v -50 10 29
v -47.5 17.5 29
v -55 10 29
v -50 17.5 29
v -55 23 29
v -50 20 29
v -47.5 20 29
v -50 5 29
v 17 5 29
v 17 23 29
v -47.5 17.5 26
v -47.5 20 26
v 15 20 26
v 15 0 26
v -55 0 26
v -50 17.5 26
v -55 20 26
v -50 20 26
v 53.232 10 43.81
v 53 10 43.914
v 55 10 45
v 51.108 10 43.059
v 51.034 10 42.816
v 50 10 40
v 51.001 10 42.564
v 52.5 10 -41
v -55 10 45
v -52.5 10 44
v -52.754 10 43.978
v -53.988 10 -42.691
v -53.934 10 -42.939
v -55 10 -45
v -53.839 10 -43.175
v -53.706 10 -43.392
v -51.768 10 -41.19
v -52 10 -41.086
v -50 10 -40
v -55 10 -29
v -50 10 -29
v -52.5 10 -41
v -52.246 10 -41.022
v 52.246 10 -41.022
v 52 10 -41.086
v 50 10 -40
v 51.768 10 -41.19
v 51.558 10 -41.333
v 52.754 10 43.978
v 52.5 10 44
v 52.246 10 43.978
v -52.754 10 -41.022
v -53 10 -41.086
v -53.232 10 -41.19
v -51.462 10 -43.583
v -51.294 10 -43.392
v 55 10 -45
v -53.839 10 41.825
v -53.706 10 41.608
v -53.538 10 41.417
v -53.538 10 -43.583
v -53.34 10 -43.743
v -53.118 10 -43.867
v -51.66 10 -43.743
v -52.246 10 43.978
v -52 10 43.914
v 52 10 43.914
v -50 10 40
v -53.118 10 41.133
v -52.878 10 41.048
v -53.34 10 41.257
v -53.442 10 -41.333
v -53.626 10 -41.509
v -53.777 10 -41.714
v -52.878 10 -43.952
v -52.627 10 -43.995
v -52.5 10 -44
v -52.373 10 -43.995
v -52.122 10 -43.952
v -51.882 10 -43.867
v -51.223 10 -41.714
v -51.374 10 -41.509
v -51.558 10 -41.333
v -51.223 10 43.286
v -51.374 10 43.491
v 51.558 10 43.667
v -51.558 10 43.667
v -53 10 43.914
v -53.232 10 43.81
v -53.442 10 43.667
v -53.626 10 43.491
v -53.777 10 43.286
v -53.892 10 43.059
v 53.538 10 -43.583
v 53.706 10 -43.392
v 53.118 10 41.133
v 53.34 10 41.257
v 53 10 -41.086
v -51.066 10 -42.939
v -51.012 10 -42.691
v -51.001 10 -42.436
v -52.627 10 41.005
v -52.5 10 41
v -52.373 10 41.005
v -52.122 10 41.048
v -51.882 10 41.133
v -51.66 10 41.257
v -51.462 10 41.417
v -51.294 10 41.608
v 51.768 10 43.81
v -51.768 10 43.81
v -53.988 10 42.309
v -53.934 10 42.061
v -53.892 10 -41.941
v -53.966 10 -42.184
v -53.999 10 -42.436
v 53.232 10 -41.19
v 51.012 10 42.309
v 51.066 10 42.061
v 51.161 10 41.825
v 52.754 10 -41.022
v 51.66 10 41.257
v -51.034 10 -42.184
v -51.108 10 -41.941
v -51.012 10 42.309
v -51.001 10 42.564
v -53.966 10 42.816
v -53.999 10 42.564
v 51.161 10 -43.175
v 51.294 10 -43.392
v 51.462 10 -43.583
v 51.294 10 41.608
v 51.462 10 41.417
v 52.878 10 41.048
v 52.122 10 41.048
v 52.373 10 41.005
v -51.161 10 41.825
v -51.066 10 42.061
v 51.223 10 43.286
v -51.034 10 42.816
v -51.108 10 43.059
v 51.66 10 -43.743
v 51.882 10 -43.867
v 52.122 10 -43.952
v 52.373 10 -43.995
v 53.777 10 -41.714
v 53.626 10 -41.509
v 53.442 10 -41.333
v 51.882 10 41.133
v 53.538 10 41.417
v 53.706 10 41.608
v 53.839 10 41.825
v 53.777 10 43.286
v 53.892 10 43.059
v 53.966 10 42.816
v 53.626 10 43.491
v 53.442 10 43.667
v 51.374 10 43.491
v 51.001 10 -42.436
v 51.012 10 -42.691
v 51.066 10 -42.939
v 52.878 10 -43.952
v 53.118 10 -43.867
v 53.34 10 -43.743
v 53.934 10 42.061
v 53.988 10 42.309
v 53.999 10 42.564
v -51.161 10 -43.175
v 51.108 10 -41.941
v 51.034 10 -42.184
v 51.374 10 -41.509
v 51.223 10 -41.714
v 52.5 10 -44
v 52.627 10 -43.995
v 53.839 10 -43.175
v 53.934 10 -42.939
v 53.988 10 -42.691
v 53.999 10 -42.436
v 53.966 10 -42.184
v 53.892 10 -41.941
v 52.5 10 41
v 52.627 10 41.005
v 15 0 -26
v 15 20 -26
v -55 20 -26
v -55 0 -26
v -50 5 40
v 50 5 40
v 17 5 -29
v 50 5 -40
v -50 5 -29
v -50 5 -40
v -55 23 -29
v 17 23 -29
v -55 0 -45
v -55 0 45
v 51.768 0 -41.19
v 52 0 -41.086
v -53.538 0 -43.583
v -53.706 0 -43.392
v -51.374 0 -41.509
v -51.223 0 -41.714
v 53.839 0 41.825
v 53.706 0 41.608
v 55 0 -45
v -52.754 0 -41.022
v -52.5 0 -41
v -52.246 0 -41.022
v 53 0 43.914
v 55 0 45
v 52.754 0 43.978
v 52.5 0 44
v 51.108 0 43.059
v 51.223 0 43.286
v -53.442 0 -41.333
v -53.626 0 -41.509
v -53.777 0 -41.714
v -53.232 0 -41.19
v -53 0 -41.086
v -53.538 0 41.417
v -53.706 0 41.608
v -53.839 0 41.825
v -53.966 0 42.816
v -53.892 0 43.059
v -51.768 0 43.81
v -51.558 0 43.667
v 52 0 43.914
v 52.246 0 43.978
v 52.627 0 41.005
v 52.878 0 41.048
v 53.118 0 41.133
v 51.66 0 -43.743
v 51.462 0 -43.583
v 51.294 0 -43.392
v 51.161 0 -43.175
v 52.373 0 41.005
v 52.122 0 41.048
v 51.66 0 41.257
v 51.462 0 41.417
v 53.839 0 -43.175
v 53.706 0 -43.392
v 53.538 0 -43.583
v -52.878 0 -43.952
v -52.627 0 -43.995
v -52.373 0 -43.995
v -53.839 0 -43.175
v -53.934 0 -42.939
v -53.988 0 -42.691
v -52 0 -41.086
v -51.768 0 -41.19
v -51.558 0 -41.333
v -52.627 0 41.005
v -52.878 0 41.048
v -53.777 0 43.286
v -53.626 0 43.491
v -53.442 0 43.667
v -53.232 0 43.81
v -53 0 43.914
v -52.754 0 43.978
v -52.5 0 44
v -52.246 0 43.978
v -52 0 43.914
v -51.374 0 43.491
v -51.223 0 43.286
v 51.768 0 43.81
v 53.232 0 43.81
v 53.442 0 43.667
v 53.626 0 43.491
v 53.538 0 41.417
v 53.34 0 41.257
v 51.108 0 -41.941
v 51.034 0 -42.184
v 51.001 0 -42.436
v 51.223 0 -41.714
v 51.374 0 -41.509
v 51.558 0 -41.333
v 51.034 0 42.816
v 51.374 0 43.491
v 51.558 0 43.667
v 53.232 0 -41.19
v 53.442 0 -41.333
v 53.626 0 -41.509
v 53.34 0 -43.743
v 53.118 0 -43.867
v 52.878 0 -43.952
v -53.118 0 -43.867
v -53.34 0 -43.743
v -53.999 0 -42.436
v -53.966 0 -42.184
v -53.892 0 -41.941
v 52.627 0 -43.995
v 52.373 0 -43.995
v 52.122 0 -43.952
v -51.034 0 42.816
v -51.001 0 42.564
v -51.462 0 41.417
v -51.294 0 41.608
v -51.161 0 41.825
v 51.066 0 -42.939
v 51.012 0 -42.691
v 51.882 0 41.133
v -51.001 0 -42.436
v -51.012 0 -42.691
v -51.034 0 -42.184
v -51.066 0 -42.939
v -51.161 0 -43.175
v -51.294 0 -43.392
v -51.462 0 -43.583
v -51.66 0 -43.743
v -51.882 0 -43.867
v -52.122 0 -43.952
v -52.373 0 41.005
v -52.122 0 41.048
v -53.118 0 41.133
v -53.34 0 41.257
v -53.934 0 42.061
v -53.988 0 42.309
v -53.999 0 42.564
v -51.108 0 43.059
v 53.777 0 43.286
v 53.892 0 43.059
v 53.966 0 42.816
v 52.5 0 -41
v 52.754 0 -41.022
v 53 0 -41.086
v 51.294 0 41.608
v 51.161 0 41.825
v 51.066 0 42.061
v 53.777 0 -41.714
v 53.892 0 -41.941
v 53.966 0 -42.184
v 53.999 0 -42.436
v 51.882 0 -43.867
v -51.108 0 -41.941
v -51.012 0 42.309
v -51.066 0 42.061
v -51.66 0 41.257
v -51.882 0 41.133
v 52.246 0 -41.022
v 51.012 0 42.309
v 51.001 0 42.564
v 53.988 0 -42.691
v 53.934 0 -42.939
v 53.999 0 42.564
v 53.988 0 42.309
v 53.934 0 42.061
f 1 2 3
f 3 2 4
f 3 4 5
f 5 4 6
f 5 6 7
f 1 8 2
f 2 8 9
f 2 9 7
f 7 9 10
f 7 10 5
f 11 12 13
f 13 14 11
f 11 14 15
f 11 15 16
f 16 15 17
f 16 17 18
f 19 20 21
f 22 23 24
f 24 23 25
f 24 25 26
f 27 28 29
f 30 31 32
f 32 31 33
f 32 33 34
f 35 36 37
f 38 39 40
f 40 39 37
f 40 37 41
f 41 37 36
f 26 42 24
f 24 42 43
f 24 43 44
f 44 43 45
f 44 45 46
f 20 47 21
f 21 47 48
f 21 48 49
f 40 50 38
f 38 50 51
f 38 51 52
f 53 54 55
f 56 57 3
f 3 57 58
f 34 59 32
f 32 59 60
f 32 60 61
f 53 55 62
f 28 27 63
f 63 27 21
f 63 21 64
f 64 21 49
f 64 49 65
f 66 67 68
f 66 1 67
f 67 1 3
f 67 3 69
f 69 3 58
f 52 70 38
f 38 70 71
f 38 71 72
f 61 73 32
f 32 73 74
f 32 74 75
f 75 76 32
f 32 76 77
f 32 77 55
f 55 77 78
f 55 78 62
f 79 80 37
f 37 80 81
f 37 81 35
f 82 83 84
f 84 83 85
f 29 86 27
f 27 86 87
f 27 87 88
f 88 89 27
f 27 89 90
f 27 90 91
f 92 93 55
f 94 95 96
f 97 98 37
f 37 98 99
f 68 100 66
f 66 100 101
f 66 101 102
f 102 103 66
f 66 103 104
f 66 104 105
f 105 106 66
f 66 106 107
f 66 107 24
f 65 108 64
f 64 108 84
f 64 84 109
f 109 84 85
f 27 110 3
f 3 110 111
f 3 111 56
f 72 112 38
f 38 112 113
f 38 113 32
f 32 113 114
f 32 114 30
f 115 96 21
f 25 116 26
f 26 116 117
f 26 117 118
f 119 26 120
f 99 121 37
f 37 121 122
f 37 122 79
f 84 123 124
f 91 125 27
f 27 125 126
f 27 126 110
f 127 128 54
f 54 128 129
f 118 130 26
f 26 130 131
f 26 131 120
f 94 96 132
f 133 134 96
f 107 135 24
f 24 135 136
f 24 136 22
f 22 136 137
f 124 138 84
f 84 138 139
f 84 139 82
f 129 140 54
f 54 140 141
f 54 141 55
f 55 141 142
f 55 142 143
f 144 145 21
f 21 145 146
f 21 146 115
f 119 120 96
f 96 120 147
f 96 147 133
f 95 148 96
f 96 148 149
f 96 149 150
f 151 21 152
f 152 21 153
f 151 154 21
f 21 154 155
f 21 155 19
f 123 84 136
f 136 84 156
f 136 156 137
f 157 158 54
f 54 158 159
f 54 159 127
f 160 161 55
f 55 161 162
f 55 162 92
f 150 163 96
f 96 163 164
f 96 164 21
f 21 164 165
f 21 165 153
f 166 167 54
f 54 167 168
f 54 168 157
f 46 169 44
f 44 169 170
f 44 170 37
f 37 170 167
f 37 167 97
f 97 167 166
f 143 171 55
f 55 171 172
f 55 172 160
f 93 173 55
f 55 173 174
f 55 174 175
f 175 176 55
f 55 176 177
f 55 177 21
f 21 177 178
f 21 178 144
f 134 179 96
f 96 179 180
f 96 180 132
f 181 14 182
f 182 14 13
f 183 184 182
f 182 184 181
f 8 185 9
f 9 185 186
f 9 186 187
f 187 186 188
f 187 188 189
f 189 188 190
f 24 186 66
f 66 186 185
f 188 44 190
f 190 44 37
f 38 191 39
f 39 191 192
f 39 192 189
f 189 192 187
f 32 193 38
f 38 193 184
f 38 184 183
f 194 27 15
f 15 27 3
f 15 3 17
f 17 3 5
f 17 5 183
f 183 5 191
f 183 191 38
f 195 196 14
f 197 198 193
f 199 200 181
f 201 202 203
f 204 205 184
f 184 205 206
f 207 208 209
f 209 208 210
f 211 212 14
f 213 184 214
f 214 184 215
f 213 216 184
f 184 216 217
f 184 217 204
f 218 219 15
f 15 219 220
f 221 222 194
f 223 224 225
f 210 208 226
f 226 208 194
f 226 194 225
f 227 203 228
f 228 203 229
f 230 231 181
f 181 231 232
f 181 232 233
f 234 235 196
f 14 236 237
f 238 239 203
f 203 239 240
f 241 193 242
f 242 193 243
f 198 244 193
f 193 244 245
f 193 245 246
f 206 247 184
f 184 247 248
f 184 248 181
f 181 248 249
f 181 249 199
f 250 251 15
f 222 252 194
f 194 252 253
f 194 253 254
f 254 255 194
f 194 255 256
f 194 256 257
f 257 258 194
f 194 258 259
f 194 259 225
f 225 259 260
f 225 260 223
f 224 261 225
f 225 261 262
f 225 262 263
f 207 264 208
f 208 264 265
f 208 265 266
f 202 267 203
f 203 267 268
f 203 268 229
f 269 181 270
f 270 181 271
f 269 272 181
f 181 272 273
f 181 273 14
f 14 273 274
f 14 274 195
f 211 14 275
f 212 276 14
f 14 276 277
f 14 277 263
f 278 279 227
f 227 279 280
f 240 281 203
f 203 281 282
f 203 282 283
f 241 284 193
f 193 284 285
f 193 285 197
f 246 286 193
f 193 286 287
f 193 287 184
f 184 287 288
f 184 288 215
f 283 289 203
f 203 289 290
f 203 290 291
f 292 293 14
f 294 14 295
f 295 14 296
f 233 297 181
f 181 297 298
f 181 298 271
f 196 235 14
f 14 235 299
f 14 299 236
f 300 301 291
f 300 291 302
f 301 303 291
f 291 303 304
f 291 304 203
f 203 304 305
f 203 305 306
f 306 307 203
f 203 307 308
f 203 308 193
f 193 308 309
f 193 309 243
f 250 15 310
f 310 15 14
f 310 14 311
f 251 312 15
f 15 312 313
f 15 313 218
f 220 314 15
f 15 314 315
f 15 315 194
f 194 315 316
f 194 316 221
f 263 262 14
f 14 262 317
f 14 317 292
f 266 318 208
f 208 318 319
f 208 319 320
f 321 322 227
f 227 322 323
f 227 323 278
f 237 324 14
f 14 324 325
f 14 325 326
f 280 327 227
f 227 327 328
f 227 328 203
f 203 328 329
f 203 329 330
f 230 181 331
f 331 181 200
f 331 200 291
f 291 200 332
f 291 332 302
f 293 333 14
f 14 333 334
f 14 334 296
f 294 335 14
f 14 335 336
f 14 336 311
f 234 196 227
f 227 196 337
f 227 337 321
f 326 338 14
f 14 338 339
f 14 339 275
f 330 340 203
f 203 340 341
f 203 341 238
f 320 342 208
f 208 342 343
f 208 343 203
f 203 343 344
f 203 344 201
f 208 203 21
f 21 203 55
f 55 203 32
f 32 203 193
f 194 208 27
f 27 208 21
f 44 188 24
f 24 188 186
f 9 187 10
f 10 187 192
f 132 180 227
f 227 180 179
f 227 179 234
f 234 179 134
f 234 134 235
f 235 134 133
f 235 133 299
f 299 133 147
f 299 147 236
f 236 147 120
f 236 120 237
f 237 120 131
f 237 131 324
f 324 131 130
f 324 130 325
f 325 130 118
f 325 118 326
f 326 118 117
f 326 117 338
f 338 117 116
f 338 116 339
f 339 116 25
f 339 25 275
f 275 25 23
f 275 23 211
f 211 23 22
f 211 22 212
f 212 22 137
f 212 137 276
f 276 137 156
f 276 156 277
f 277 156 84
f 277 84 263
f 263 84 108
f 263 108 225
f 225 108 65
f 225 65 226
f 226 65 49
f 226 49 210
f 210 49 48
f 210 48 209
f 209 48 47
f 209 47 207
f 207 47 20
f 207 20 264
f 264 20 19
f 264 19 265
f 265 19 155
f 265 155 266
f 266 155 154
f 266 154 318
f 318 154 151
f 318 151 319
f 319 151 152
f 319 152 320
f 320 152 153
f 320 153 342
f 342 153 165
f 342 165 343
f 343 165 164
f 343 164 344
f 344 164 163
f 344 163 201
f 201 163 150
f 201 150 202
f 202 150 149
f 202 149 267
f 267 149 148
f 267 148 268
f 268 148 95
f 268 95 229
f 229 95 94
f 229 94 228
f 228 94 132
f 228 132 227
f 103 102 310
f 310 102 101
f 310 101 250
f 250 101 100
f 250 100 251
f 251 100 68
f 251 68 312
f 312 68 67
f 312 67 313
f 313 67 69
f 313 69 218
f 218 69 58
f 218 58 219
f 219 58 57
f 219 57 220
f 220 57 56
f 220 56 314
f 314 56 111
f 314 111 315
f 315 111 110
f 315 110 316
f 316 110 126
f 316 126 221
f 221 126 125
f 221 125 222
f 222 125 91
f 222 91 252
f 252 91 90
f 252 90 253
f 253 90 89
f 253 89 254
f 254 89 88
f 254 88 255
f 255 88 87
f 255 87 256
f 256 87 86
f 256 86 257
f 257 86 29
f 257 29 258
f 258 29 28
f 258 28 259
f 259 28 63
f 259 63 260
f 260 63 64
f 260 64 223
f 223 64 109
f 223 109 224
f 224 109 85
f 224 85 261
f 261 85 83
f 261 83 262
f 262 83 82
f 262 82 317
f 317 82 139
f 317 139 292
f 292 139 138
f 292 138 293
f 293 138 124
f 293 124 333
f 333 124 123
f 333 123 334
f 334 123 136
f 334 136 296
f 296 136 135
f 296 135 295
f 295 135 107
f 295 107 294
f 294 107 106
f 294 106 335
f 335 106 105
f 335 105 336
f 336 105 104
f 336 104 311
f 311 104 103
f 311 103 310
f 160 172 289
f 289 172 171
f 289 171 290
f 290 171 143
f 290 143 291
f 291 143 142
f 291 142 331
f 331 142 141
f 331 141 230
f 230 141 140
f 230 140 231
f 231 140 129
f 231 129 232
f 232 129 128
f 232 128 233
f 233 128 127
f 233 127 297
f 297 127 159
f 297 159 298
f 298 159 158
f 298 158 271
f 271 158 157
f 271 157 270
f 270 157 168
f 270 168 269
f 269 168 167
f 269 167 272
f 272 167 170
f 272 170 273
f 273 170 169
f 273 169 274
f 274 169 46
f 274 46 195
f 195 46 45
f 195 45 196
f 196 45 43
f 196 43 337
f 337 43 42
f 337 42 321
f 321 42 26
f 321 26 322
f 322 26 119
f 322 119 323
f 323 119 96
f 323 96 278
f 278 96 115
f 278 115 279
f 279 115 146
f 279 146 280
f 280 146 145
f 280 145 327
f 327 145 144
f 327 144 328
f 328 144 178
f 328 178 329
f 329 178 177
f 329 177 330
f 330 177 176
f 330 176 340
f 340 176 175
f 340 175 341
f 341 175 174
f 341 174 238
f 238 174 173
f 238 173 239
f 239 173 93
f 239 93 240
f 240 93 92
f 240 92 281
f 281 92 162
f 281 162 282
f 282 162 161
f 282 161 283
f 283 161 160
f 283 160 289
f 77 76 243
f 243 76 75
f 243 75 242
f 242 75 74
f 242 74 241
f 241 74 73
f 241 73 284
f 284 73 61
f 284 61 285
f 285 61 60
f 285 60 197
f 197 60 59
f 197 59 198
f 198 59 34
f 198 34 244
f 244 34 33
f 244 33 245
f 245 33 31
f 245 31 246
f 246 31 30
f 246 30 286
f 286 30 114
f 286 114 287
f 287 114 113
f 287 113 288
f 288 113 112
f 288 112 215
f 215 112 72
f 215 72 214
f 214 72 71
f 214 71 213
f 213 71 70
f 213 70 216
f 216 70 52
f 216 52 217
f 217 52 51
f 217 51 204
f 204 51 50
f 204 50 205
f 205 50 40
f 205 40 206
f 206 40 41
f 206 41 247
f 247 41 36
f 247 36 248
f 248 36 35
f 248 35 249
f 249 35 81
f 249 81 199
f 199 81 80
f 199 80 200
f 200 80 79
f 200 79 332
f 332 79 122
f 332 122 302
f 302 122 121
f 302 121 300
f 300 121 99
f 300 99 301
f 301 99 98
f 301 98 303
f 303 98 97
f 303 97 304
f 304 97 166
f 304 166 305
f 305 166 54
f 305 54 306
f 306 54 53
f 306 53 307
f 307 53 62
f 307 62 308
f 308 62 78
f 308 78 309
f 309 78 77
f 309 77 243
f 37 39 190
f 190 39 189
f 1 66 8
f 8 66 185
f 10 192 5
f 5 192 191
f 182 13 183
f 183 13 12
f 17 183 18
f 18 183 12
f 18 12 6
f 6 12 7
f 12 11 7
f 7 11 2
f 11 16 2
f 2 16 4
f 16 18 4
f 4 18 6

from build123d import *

# Parameters (mm, degrees)
SKETCH1_W            = 110
SKETCH1_H            = 90
BOSS_EXTRUDE2_DEPTH  = 5
SKETCH2_W            = 110
SKETCH2_H            = 5
BOSS_EXTRUDE4_DEPTH  = 25
SKETCH3_W            = 110
SKETCH3_H            = 5
BOSS_EXTRUDE5_DEPTH  = 25
SKETCH5_W            = 5
SKETCH5_H            = 80
BOSS_EXTRUDE6_DEPTH  = 25
SKETCH8_W            = 72
SKETCH8_H            = 58
BOSS_EXTRUDE7_DEPTH  = 25
SKETCH10_W           = 52
SKETCH10_H           = 20.115523146
CUT_EXTRUDE1_DEPTH   = 70
SKETCH11_W           = 90
SKETCH11_H           = 7
CUT_EXTRUDE2_DEPTH   = 110
SKETCH12_R           = 1.5
CUT_EXTRUDE3_DEPTH   = 23
SKETCH13_R           = 1.5
CUT_EXTRUDE4_DEPTH   = 23
SKETCH14_R           = 1.5
CUT_EXTRUDE5_DEPTH   = 23
SKETCH15_R           = 1.5
CUT_EXTRUDE6_DEPTH   = 23
SKETCH18_W           = 5
SKETCH18_H           = 13
CUT_EXTRUDE7_DEPTH   = 110
SKETCH19_W           = 5
SKETCH19_H           = 13
CUT_EXTRUDE13_DEPTH  = 85
SKETCH26_W           = 5
SKETCH26_H           = 13
CUT_EXTRUDE17_DEPTH  = 105
SKETCH29_W           = 5
SKETCH29_H           = 11
BOSS_EXTRUDE14_DEPTH = 5
SKETCH30_W           = 5
SKETCH30_H           = 11
BOSS_EXTRUDE15_DEPTH = 5
SKETCH34_W           = 2.5
SKETCH34_H           = 2.5
CUT_EXTRUDE18_DEPTH  = 3
SKETCH37_W           = 72
SKETCH37_H           = 13
CUT_EXTRUDE20_DEPTH  = 58
SKETCH39_W           = 72
SKETCH39_H           = 3
BOSS_EXTRUDE17_DEPTH = 13
SKETCH41_W           = 2
SKETCH41_H           = 55
BOSS_EXTRUDE18_DEPTH = 13
SKETCH43_W           = 70
SKETCH43_H           = 3
BOSS_EXTRUDE19_DEPTH = 13
SKETCH44_W           = 70
SKETCH44_H           = 52
BOSS_EXTRUDE22_DEPTH = 3
SKETCH55_W           = 2.5
SKETCH55_H           = 2.5
CUT_EXTRUDE25_DEPTH  = 3


with BuildPart() as part:
    # Sketch1 → Boss-Extrude2 (new body)
    with BuildSketch(Plane(origin=(0, 0, 0), x_dir=(1, 0, 0), z_dir=(0, 1, 0))):
        Rectangle(SKETCH1_W, SKETCH1_H)
    extrude(amount=BOSS_EXTRUDE2_DEPTH)

    # Sketch2 → Boss-Extrude4 (add)
    with BuildSketch(Plane(origin=(0, 5, 0), x_dir=(1, 0, 0), z_dir=(0, 1, 0))):
        with Locations((0, 42.5)):
            Rectangle(SKETCH2_W, SKETCH2_H)
    extrude(amount=BOSS_EXTRUDE4_DEPTH)

    # Sketch3 → Boss-Extrude5 (add)
    with BuildSketch(Plane(origin=(0, 5, 0), x_dir=(1, 0, 0), z_dir=(0, 1, 0))):
        with Locations((0, -42.5)):
            Rectangle(SKETCH3_W, SKETCH3_H)
    extrude(amount=BOSS_EXTRUDE5_DEPTH)

    # Sketch5 → Boss-Extrude6 (add)
    with BuildSketch(Plane(origin=(0, 5, 0), x_dir=(1, 0, 0), z_dir=(0, 1, 0))):
        with Locations((52.5, 0)):
            Rectangle(SKETCH5_W, SKETCH5_H)
    extrude(amount=BOSS_EXTRUDE6_DEPTH)

    # Sketch8 → Boss-Extrude7 (add)
    with BuildSketch(Plane(origin=(0, 5, 0), x_dir=(1, 0, 0), z_dir=(0, 1, 0))):
        with Locations((-19, 0)):
            Rectangle(SKETCH8_W, SKETCH8_H)
    extrude(amount=BOSS_EXTRUDE7_DEPTH)

    # Sketch10 → Cut-Extrude1 (cut)
    with BuildSketch(Plane.ZY.offset(55)):
        with Locations((0, 10.057761573)):
            Rectangle(SKETCH10_W, SKETCH10_H)
    extrude(amount=-CUT_EXTRUDE1_DEPTH, mode=Mode.SUBTRACT)

    # Sketch11 → Cut-Extrude2 (cut)
    with BuildSketch(Plane.ZY.offset(55)):
        with Locations((0, 26.5)):
            Rectangle(SKETCH11_W, SKETCH11_H)
    extrude(amount=-CUT_EXTRUDE2_DEPTH, mode=Mode.SUBTRACT)

    # Sketch12 → Cut-Extrude3 (cut)
    with BuildSketch(Plane(origin=(0, 23, 0), x_dir=(1, 0, 0), z_dir=(0, 1, 0))):
        with Locations((52.5, -42.5)):
            Circle(SKETCH12_R)
    extrude(amount=-CUT_EXTRUDE3_DEPTH, mode=Mode.SUBTRACT)

    # Sketch13 → Cut-Extrude4 (cut)
    with BuildSketch(Plane(origin=(0, 23, 0), x_dir=(1, 0, 0), z_dir=(0, 1, 0))):
        with Locations((-52.5, -42.5)):
            Circle(SKETCH13_R)
    extrude(amount=-CUT_EXTRUDE4_DEPTH, mode=Mode.SUBTRACT)

    # Sketch14 → Cut-Extrude5 (cut)
    with BuildSketch(Plane(origin=(0, 23, 0), x_dir=(1, 0, 0), z_dir=(0, 1, 0))):
        with Locations((52.5, 42.5)):
            Circle(SKETCH14_R)
    extrude(amount=-CUT_EXTRUDE5_DEPTH, mode=Mode.SUBTRACT)

    # Sketch15 → Cut-Extrude6 (cut)
    with BuildSketch(Plane(origin=(0, 23, 0), x_dir=(1, 0, 0), z_dir=(0, 1, 0))):
        with Locations((-52.5, 42.5)):
            Circle(SKETCH15_R)
    extrude(amount=-CUT_EXTRUDE6_DEPTH, mode=Mode.SUBTRACT)

    # Sketch18 → Cut-Extrude7 (cut)
    with BuildSketch(Plane.ZY.offset(55)):
        with Locations((-42.5, 16.5)):
            Rectangle(SKETCH18_W, SKETCH18_H)
    extrude(amount=-CUT_EXTRUDE7_DEPTH, mode=Mode.SUBTRACT)

    # Sketch19 → Cut-Extrude13 (cut)
    with BuildSketch(Plane(origin=(0, 0, -40), x_dir=(-1, 0, 0), z_dir=(0, 0, -1))):
        with Locations((-52.5, 16.5)):
            Rectangle(SKETCH19_W, SKETCH19_H)
    extrude(amount=-CUT_EXTRUDE13_DEPTH, mode=Mode.SUBTRACT)

    # Sketch26 → Cut-Extrude17 (cut)
    with BuildSketch(Plane(origin=(50, 0, 0), x_dir=(0, 0, -1), z_dir=(1, 0, 0))):
        with Locations((-42.5, 16.5)):
            Rectangle(SKETCH26_W, SKETCH26_H)
    extrude(amount=-CUT_EXTRUDE17_DEPTH, mode=Mode.SUBTRACT)

    # Sketch29 → Boss-Extrude14 (add)
    with BuildSketch(Plane(origin=(0, 5, 0), x_dir=(1, 0, 0), z_dir=(0, 1, 0))):
        with Locations((-52.5, 34.5)):
            Rectangle(SKETCH29_W, SKETCH29_H)
    extrude(amount=BOSS_EXTRUDE14_DEPTH)

    # Sketch30 → Boss-Extrude15 (add)
    with BuildSketch(Plane(origin=(0, 5, 0), x_dir=(1, 0, 0), z_dir=(0, 1, 0))):
        with Locations((-52.5, -34.5)):
            Rectangle(SKETCH30_W, SKETCH30_H)
    extrude(amount=BOSS_EXTRUDE15_DEPTH)

    # Sketch34 → Cut-Extrude18 (cut)
    with BuildSketch(Plane.XY.offset(29)):
        with Locations((-48.75, 18.75)):
            Rectangle(SKETCH34_W, SKETCH34_H)
    extrude(amount=-CUT_EXTRUDE18_DEPTH, mode=Mode.SUBTRACT)

    # Sketch37 → Cut-Extrude20 (cut)
    with BuildSketch(Plane.XY.offset(29)):
        with Locations((-19, 16.5)):
            Rectangle(SKETCH37_W, SKETCH37_H)
    extrude(amount=-CUT_EXTRUDE20_DEPTH, mode=Mode.SUBTRACT)

    # Sketch39 → Boss-Extrude17 (add)
    with BuildSketch(Plane(origin=(0, 10, 0), x_dir=(1, 0, 0), z_dir=(0, 1, 0))):
        with Locations((-19, 27.5)):
            Rectangle(SKETCH39_W, SKETCH39_H)
    extrude(amount=BOSS_EXTRUDE17_DEPTH)

    # Sketch41 → Boss-Extrude18 (add)
    with BuildSketch(Plane(origin=(0, 10, 0), x_dir=(1, 0, 0), z_dir=(0, 1, 0))):
        with Locations((16, -1.5)):
            Rectangle(SKETCH41_W, SKETCH41_H)
    extrude(amount=BOSS_EXTRUDE18_DEPTH)

    # Sketch43 → Boss-Extrude19 (add)
    with BuildSketch(Plane(origin=(0, 10, 0), x_dir=(1, 0, 0), z_dir=(0, 1, 0))):
        with Locations((-20, -27.5)):
            Rectangle(SKETCH43_W, SKETCH43_H)
    extrude(amount=BOSS_EXTRUDE19_DEPTH)

    # Sketch44 → Boss-Extrude22 (add)
    with BuildSketch(Plane(origin=(0, 23, 0), x_dir=(1, 0, 0), z_dir=(0, 1, 0))):
        with Locations((-20, 0)):
            Rectangle(SKETCH44_W, SKETCH44_H)
    extrude(amount=-BOSS_EXTRUDE22_DEPTH)

    # Sketch55 → Cut-Extrude25 (cut)
    with BuildSketch(Plane.XY.offset(29)):
        with Locations((-48.75, 18.75)):
            Rectangle(SKETCH55_W, SKETCH55_H)
    extrude(amount=-CUT_EXTRUDE25_DEPTH, mode=Mode.SUBTRACT)


solid = part.part
